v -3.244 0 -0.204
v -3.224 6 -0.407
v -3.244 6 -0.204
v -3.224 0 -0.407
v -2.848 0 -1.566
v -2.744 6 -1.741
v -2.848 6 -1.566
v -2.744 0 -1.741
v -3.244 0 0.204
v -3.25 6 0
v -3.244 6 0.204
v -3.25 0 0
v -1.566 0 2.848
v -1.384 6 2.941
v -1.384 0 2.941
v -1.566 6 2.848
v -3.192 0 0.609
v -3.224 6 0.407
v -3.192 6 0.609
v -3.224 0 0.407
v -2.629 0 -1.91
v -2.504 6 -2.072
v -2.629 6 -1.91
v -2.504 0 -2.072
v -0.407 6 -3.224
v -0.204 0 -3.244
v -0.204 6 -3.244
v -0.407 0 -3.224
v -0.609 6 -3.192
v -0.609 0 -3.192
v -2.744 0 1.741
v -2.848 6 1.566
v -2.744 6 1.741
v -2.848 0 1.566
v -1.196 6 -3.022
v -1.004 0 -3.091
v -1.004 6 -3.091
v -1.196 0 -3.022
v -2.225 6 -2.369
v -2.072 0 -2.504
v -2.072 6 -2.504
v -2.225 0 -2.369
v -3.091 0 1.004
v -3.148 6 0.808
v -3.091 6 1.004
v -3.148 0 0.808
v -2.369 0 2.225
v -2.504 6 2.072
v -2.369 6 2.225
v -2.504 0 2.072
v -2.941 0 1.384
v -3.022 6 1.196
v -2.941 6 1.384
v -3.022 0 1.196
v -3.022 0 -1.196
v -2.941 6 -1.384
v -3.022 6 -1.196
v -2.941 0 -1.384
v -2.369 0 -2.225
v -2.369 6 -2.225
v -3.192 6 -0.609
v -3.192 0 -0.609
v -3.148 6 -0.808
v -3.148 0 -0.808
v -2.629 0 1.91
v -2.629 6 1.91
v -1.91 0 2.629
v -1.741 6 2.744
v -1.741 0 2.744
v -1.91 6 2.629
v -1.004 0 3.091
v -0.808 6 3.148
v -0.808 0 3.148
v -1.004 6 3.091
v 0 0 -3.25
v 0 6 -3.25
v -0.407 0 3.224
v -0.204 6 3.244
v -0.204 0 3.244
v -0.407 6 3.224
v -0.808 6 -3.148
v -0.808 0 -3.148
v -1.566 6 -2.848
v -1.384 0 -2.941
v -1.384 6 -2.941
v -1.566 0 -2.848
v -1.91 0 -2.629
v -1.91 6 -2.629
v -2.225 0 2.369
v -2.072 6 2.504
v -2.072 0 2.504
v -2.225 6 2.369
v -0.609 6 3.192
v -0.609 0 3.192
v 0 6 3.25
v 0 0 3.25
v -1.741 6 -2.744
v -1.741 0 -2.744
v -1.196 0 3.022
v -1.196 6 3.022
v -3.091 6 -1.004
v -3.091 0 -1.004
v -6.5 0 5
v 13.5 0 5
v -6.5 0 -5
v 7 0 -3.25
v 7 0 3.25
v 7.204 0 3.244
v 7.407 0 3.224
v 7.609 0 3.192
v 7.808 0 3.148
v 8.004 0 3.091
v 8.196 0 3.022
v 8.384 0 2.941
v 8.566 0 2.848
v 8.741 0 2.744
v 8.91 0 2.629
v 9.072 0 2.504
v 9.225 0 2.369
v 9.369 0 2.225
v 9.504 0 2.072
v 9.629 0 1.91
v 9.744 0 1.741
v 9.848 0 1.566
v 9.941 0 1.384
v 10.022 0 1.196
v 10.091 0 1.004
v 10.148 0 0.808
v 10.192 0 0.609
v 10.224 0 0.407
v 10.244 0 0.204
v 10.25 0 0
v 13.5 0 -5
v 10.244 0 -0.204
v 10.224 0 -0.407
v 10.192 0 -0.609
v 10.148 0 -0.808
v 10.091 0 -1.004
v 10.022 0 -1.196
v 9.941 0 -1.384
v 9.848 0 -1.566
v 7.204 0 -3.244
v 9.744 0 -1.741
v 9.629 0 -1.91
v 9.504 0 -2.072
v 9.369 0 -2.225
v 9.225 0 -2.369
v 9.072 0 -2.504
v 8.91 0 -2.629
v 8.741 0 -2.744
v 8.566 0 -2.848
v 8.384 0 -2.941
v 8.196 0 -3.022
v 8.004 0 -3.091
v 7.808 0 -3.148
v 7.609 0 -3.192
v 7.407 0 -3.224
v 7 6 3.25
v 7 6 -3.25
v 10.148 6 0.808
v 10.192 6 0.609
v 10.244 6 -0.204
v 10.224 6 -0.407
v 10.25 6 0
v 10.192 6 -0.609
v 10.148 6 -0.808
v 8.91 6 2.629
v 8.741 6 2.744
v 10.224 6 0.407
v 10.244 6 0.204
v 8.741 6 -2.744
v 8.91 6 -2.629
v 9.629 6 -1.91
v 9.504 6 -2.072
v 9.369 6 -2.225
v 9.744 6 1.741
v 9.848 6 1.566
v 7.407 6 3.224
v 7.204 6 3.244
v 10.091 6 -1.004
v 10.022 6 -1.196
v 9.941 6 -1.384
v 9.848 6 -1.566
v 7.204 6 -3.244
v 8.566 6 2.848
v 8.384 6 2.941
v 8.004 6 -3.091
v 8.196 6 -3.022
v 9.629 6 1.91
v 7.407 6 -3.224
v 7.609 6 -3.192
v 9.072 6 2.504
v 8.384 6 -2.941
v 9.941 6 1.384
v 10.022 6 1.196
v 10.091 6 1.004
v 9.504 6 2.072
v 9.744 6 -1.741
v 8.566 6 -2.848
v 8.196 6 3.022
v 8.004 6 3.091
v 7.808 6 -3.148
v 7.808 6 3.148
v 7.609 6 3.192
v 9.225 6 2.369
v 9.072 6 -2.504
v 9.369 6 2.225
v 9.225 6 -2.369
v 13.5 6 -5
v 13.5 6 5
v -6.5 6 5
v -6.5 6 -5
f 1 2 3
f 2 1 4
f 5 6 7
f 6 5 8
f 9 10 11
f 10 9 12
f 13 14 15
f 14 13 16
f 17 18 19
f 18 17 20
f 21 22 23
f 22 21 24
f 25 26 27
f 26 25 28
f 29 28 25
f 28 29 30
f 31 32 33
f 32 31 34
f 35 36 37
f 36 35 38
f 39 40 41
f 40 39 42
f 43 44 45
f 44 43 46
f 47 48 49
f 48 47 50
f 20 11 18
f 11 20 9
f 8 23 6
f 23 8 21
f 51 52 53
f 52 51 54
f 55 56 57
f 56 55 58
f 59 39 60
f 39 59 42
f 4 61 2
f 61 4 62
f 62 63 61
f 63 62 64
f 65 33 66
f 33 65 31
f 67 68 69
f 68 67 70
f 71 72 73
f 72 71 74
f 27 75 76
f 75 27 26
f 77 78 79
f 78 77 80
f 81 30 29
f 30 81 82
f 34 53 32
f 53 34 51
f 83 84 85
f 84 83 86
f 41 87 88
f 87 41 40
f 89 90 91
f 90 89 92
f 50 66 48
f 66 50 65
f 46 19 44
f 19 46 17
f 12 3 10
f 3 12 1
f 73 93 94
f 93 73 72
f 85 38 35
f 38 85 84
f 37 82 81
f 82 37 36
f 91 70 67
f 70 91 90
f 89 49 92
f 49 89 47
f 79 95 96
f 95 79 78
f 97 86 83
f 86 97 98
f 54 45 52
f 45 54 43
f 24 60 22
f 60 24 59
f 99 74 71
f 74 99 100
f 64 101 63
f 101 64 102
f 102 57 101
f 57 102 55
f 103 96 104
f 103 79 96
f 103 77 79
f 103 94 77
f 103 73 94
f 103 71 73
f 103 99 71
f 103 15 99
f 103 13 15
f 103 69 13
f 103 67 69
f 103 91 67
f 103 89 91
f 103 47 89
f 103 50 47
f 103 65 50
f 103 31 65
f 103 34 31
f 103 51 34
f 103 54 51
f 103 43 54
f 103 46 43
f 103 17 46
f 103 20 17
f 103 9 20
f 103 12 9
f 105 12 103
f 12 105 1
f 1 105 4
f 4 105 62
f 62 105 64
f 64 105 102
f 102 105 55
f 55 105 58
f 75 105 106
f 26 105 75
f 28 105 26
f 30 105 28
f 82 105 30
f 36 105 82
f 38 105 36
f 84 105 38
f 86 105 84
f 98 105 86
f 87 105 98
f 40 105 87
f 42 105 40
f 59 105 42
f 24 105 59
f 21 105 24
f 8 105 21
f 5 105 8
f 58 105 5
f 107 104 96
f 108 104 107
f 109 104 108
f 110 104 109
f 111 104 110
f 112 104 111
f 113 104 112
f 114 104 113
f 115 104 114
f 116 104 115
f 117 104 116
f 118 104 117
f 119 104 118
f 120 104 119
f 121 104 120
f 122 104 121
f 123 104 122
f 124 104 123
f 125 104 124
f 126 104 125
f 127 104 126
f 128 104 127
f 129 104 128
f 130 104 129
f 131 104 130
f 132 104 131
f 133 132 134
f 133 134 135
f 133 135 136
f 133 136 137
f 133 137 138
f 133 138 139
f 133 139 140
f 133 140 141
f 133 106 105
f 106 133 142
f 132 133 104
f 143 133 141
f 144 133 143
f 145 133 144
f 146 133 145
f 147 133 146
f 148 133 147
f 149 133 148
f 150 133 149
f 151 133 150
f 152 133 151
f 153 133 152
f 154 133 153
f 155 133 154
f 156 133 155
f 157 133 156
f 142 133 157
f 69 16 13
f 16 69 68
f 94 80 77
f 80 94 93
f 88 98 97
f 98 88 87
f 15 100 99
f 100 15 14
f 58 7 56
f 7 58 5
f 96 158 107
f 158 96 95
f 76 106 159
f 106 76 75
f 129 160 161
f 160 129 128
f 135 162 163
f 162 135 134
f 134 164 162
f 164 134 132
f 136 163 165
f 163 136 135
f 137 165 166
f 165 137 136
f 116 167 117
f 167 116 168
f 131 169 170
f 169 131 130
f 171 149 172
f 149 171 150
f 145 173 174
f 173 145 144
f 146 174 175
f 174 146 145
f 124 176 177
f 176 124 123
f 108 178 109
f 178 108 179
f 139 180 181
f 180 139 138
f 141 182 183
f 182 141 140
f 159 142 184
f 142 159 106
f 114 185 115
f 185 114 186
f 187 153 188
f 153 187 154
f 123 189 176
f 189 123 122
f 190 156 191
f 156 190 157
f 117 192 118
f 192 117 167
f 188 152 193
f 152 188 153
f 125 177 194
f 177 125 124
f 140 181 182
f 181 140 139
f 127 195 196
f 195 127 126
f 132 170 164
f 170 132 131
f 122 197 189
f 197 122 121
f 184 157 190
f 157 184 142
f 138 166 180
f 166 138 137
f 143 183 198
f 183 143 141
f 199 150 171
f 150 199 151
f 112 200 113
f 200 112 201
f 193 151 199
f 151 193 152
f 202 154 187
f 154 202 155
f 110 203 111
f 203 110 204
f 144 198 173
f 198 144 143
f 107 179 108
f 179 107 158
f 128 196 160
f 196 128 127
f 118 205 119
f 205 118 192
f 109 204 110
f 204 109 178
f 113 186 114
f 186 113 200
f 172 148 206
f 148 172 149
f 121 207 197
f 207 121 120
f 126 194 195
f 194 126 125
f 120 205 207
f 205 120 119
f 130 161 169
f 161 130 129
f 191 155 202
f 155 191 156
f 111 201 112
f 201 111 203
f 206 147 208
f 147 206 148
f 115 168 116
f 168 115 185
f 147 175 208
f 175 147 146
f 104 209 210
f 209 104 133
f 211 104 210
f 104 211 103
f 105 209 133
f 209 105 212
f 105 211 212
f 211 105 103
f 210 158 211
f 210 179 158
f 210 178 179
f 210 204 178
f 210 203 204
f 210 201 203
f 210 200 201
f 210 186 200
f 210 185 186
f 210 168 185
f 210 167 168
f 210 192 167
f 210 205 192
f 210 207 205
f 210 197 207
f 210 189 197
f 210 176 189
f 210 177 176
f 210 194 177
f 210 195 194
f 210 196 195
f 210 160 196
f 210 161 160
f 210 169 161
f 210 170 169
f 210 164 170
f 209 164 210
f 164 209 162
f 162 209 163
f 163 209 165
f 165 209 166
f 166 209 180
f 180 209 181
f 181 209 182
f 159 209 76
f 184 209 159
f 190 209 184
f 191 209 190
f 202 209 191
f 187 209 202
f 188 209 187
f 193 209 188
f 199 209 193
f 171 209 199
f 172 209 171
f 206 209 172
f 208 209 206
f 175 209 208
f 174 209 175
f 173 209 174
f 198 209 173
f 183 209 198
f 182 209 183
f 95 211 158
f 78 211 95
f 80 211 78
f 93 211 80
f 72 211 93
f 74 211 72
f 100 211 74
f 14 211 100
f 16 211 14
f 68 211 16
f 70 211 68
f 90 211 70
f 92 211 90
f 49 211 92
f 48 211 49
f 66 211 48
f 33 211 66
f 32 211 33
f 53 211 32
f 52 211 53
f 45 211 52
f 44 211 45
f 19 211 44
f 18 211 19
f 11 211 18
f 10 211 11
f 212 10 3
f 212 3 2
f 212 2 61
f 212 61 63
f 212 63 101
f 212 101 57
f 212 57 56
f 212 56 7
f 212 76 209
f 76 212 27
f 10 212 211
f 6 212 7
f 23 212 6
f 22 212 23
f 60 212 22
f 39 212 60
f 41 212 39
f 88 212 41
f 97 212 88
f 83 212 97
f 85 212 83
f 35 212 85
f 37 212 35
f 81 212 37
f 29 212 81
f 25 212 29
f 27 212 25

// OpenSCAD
// file: usbc_female.scad
$fn=100;
module usbc_female() {
  // left half cylinder
  rotate([-90,0,0]) cylinder(h=20, r=3.25);

  translate([0,0,-3.25]) {
    cube([7,20,6.5]);
  }

  // right half cylinder
  translate([7,0,0]) {
    rotate([-90,0,0]) cylinder(h=20, r=3.25);
  }
}

usbc_female();
// main file
use <usbc_female.scad>
difference() {
  translate([-6.5,0,-5]) {
    cube([20,6,10]);
  }

  usbc_female();
}
